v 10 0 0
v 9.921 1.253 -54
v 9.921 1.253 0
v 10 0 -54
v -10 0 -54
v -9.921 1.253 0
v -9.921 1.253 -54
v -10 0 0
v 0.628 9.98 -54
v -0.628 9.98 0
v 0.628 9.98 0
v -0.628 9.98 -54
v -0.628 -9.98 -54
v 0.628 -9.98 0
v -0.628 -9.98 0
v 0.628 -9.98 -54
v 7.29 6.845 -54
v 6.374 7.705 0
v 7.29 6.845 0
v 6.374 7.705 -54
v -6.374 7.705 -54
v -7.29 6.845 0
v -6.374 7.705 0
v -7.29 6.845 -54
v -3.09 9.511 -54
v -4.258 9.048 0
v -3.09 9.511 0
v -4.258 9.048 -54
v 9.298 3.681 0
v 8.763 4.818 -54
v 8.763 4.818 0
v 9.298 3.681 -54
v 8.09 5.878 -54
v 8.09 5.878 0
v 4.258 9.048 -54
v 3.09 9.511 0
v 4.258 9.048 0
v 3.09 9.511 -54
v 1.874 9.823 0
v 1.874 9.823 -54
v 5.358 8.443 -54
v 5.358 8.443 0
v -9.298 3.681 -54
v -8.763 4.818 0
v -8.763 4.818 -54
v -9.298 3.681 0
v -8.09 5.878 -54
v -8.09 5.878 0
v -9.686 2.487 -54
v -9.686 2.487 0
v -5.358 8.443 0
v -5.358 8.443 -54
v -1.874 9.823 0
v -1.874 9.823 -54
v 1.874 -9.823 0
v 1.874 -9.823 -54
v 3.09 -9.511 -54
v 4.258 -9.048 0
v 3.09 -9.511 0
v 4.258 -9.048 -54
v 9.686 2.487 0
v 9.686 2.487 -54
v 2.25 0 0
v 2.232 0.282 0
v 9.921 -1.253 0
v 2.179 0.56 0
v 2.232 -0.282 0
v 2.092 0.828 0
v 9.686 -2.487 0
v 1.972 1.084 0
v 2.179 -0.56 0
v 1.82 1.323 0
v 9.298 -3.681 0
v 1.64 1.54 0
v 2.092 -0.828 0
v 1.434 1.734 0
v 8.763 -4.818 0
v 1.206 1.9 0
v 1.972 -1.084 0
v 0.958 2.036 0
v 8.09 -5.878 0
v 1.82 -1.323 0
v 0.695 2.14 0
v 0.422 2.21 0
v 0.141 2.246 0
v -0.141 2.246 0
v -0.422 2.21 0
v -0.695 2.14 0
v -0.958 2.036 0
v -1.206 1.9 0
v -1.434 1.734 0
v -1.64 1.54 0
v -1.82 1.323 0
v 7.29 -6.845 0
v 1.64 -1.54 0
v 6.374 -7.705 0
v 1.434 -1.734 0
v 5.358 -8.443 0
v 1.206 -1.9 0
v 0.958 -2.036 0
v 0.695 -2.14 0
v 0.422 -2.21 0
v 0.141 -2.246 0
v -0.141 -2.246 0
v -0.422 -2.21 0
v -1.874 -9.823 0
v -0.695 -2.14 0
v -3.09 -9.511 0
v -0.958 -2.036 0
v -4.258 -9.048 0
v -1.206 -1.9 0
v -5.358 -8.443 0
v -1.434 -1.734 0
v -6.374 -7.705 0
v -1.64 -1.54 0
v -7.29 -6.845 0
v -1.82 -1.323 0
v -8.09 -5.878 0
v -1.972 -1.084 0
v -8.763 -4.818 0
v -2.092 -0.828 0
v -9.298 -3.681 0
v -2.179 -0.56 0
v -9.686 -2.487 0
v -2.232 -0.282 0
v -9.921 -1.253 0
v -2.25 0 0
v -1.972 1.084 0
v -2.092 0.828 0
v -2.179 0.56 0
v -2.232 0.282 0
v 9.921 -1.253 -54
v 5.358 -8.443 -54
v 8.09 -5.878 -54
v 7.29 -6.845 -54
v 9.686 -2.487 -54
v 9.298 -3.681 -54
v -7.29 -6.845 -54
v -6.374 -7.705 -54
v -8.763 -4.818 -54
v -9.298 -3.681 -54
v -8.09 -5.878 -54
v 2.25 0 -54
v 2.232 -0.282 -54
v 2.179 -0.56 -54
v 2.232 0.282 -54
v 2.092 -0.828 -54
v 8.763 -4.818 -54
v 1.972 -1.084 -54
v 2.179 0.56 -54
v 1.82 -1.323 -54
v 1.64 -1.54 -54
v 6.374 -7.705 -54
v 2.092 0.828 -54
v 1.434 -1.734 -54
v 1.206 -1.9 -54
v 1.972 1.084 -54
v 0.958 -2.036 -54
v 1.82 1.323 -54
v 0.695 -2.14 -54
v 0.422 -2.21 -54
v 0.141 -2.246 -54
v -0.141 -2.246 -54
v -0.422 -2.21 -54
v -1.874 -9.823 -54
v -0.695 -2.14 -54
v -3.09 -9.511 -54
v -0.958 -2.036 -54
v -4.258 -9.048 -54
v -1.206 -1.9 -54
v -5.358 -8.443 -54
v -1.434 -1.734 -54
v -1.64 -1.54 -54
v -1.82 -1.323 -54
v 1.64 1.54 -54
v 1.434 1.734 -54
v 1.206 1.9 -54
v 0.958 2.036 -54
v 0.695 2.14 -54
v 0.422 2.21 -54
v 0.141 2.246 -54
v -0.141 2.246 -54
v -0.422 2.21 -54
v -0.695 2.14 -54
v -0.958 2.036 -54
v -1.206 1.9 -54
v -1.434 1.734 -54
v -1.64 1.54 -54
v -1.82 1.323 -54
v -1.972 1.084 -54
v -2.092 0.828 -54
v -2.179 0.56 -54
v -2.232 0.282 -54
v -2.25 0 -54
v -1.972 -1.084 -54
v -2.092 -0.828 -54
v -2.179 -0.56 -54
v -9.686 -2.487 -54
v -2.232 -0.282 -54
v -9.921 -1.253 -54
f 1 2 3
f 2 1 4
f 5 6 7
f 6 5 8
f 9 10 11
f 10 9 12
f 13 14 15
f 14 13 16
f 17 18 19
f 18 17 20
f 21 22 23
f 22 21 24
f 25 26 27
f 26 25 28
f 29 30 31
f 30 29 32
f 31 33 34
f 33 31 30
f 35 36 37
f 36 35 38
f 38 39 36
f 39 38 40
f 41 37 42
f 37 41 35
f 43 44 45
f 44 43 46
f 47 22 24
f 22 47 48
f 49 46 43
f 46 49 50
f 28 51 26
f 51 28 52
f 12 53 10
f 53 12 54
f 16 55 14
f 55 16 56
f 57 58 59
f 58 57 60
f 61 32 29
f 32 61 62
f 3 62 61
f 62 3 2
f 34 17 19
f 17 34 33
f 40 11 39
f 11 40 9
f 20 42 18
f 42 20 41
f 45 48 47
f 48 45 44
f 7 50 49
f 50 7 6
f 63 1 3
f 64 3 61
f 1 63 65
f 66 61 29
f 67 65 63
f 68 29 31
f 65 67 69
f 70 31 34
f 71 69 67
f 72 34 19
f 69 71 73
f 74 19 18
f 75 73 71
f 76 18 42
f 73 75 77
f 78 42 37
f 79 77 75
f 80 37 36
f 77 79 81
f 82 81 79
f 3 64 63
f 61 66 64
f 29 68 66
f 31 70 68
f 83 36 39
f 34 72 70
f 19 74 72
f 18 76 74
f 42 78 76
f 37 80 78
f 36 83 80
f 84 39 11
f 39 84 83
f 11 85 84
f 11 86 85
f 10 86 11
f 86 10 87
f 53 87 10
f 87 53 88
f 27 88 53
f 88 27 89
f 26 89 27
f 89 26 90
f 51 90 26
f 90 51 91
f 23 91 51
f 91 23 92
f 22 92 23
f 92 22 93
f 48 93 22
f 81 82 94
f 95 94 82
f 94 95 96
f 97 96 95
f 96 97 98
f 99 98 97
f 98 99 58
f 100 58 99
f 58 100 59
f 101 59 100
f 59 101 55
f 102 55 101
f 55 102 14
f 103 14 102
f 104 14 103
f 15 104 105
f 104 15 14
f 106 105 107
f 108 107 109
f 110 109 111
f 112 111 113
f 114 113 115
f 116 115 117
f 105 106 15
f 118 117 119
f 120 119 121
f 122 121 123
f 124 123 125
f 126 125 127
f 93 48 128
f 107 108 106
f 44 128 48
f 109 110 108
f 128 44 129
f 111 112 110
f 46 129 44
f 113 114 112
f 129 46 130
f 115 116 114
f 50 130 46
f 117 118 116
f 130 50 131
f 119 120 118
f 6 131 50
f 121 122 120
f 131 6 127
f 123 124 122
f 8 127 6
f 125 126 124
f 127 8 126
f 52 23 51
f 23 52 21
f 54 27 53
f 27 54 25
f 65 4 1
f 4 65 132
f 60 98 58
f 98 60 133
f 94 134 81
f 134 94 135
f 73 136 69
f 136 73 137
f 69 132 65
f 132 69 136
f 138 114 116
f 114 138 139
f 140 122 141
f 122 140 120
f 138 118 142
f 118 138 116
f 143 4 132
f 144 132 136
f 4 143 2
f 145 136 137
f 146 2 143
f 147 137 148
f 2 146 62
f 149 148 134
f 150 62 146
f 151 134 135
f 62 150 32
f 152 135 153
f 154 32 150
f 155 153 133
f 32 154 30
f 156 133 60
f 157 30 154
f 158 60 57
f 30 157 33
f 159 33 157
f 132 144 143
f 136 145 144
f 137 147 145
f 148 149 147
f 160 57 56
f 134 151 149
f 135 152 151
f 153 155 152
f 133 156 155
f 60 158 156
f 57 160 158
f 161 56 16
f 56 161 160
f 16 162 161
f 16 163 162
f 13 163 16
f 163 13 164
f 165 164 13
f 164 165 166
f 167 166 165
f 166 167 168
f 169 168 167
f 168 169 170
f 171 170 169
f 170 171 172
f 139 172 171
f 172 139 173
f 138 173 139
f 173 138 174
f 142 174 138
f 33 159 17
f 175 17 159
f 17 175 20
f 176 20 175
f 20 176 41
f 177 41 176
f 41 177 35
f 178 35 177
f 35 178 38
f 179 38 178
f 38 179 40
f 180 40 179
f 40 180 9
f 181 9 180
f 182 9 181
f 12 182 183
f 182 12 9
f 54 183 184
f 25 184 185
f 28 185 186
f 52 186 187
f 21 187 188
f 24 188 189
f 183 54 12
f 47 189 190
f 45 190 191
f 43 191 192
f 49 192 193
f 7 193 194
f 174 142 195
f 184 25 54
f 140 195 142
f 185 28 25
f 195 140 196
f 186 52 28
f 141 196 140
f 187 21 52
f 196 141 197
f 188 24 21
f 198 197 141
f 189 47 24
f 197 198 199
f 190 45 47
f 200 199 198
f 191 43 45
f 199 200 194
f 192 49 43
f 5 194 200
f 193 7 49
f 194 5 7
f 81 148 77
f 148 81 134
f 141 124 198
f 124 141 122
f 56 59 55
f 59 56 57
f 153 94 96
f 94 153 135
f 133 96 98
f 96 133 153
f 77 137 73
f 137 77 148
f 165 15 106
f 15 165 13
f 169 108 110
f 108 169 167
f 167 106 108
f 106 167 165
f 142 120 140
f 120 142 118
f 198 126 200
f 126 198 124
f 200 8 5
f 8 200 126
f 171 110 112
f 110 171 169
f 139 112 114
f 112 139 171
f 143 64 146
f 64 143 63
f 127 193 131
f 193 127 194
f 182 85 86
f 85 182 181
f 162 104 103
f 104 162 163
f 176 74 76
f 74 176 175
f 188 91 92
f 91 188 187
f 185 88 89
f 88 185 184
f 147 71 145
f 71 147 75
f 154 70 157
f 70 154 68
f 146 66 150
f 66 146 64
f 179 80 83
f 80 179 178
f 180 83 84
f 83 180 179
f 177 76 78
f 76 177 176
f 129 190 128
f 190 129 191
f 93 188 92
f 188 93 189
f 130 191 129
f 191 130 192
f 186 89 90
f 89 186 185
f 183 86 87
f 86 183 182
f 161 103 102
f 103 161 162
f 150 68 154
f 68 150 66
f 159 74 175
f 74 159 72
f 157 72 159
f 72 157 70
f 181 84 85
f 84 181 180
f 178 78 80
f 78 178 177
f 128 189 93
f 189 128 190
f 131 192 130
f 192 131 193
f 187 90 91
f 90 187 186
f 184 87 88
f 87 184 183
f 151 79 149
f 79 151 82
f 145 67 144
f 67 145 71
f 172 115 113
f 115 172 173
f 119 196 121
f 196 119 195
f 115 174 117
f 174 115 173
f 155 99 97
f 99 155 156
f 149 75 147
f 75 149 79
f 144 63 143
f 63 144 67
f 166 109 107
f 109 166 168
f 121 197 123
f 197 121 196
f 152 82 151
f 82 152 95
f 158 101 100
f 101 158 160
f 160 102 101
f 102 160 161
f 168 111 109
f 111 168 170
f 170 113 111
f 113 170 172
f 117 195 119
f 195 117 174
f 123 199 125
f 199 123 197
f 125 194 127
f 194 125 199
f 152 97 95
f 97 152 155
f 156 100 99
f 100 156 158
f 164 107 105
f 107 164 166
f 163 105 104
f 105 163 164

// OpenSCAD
$fn = 50;


difference() {
	union() {
		translate(v = [0, 0, -54.0000000000]) {
			cylinder(h = 54, r = 10.0000000000);
		}
		cylinder(h = 0, r = 13.0000000000);
	}
	union() {
		#translate(v = [0, 0, -54]) {
			cylinder(h = 54, r = 2.2500000000);
		}
	}
}
